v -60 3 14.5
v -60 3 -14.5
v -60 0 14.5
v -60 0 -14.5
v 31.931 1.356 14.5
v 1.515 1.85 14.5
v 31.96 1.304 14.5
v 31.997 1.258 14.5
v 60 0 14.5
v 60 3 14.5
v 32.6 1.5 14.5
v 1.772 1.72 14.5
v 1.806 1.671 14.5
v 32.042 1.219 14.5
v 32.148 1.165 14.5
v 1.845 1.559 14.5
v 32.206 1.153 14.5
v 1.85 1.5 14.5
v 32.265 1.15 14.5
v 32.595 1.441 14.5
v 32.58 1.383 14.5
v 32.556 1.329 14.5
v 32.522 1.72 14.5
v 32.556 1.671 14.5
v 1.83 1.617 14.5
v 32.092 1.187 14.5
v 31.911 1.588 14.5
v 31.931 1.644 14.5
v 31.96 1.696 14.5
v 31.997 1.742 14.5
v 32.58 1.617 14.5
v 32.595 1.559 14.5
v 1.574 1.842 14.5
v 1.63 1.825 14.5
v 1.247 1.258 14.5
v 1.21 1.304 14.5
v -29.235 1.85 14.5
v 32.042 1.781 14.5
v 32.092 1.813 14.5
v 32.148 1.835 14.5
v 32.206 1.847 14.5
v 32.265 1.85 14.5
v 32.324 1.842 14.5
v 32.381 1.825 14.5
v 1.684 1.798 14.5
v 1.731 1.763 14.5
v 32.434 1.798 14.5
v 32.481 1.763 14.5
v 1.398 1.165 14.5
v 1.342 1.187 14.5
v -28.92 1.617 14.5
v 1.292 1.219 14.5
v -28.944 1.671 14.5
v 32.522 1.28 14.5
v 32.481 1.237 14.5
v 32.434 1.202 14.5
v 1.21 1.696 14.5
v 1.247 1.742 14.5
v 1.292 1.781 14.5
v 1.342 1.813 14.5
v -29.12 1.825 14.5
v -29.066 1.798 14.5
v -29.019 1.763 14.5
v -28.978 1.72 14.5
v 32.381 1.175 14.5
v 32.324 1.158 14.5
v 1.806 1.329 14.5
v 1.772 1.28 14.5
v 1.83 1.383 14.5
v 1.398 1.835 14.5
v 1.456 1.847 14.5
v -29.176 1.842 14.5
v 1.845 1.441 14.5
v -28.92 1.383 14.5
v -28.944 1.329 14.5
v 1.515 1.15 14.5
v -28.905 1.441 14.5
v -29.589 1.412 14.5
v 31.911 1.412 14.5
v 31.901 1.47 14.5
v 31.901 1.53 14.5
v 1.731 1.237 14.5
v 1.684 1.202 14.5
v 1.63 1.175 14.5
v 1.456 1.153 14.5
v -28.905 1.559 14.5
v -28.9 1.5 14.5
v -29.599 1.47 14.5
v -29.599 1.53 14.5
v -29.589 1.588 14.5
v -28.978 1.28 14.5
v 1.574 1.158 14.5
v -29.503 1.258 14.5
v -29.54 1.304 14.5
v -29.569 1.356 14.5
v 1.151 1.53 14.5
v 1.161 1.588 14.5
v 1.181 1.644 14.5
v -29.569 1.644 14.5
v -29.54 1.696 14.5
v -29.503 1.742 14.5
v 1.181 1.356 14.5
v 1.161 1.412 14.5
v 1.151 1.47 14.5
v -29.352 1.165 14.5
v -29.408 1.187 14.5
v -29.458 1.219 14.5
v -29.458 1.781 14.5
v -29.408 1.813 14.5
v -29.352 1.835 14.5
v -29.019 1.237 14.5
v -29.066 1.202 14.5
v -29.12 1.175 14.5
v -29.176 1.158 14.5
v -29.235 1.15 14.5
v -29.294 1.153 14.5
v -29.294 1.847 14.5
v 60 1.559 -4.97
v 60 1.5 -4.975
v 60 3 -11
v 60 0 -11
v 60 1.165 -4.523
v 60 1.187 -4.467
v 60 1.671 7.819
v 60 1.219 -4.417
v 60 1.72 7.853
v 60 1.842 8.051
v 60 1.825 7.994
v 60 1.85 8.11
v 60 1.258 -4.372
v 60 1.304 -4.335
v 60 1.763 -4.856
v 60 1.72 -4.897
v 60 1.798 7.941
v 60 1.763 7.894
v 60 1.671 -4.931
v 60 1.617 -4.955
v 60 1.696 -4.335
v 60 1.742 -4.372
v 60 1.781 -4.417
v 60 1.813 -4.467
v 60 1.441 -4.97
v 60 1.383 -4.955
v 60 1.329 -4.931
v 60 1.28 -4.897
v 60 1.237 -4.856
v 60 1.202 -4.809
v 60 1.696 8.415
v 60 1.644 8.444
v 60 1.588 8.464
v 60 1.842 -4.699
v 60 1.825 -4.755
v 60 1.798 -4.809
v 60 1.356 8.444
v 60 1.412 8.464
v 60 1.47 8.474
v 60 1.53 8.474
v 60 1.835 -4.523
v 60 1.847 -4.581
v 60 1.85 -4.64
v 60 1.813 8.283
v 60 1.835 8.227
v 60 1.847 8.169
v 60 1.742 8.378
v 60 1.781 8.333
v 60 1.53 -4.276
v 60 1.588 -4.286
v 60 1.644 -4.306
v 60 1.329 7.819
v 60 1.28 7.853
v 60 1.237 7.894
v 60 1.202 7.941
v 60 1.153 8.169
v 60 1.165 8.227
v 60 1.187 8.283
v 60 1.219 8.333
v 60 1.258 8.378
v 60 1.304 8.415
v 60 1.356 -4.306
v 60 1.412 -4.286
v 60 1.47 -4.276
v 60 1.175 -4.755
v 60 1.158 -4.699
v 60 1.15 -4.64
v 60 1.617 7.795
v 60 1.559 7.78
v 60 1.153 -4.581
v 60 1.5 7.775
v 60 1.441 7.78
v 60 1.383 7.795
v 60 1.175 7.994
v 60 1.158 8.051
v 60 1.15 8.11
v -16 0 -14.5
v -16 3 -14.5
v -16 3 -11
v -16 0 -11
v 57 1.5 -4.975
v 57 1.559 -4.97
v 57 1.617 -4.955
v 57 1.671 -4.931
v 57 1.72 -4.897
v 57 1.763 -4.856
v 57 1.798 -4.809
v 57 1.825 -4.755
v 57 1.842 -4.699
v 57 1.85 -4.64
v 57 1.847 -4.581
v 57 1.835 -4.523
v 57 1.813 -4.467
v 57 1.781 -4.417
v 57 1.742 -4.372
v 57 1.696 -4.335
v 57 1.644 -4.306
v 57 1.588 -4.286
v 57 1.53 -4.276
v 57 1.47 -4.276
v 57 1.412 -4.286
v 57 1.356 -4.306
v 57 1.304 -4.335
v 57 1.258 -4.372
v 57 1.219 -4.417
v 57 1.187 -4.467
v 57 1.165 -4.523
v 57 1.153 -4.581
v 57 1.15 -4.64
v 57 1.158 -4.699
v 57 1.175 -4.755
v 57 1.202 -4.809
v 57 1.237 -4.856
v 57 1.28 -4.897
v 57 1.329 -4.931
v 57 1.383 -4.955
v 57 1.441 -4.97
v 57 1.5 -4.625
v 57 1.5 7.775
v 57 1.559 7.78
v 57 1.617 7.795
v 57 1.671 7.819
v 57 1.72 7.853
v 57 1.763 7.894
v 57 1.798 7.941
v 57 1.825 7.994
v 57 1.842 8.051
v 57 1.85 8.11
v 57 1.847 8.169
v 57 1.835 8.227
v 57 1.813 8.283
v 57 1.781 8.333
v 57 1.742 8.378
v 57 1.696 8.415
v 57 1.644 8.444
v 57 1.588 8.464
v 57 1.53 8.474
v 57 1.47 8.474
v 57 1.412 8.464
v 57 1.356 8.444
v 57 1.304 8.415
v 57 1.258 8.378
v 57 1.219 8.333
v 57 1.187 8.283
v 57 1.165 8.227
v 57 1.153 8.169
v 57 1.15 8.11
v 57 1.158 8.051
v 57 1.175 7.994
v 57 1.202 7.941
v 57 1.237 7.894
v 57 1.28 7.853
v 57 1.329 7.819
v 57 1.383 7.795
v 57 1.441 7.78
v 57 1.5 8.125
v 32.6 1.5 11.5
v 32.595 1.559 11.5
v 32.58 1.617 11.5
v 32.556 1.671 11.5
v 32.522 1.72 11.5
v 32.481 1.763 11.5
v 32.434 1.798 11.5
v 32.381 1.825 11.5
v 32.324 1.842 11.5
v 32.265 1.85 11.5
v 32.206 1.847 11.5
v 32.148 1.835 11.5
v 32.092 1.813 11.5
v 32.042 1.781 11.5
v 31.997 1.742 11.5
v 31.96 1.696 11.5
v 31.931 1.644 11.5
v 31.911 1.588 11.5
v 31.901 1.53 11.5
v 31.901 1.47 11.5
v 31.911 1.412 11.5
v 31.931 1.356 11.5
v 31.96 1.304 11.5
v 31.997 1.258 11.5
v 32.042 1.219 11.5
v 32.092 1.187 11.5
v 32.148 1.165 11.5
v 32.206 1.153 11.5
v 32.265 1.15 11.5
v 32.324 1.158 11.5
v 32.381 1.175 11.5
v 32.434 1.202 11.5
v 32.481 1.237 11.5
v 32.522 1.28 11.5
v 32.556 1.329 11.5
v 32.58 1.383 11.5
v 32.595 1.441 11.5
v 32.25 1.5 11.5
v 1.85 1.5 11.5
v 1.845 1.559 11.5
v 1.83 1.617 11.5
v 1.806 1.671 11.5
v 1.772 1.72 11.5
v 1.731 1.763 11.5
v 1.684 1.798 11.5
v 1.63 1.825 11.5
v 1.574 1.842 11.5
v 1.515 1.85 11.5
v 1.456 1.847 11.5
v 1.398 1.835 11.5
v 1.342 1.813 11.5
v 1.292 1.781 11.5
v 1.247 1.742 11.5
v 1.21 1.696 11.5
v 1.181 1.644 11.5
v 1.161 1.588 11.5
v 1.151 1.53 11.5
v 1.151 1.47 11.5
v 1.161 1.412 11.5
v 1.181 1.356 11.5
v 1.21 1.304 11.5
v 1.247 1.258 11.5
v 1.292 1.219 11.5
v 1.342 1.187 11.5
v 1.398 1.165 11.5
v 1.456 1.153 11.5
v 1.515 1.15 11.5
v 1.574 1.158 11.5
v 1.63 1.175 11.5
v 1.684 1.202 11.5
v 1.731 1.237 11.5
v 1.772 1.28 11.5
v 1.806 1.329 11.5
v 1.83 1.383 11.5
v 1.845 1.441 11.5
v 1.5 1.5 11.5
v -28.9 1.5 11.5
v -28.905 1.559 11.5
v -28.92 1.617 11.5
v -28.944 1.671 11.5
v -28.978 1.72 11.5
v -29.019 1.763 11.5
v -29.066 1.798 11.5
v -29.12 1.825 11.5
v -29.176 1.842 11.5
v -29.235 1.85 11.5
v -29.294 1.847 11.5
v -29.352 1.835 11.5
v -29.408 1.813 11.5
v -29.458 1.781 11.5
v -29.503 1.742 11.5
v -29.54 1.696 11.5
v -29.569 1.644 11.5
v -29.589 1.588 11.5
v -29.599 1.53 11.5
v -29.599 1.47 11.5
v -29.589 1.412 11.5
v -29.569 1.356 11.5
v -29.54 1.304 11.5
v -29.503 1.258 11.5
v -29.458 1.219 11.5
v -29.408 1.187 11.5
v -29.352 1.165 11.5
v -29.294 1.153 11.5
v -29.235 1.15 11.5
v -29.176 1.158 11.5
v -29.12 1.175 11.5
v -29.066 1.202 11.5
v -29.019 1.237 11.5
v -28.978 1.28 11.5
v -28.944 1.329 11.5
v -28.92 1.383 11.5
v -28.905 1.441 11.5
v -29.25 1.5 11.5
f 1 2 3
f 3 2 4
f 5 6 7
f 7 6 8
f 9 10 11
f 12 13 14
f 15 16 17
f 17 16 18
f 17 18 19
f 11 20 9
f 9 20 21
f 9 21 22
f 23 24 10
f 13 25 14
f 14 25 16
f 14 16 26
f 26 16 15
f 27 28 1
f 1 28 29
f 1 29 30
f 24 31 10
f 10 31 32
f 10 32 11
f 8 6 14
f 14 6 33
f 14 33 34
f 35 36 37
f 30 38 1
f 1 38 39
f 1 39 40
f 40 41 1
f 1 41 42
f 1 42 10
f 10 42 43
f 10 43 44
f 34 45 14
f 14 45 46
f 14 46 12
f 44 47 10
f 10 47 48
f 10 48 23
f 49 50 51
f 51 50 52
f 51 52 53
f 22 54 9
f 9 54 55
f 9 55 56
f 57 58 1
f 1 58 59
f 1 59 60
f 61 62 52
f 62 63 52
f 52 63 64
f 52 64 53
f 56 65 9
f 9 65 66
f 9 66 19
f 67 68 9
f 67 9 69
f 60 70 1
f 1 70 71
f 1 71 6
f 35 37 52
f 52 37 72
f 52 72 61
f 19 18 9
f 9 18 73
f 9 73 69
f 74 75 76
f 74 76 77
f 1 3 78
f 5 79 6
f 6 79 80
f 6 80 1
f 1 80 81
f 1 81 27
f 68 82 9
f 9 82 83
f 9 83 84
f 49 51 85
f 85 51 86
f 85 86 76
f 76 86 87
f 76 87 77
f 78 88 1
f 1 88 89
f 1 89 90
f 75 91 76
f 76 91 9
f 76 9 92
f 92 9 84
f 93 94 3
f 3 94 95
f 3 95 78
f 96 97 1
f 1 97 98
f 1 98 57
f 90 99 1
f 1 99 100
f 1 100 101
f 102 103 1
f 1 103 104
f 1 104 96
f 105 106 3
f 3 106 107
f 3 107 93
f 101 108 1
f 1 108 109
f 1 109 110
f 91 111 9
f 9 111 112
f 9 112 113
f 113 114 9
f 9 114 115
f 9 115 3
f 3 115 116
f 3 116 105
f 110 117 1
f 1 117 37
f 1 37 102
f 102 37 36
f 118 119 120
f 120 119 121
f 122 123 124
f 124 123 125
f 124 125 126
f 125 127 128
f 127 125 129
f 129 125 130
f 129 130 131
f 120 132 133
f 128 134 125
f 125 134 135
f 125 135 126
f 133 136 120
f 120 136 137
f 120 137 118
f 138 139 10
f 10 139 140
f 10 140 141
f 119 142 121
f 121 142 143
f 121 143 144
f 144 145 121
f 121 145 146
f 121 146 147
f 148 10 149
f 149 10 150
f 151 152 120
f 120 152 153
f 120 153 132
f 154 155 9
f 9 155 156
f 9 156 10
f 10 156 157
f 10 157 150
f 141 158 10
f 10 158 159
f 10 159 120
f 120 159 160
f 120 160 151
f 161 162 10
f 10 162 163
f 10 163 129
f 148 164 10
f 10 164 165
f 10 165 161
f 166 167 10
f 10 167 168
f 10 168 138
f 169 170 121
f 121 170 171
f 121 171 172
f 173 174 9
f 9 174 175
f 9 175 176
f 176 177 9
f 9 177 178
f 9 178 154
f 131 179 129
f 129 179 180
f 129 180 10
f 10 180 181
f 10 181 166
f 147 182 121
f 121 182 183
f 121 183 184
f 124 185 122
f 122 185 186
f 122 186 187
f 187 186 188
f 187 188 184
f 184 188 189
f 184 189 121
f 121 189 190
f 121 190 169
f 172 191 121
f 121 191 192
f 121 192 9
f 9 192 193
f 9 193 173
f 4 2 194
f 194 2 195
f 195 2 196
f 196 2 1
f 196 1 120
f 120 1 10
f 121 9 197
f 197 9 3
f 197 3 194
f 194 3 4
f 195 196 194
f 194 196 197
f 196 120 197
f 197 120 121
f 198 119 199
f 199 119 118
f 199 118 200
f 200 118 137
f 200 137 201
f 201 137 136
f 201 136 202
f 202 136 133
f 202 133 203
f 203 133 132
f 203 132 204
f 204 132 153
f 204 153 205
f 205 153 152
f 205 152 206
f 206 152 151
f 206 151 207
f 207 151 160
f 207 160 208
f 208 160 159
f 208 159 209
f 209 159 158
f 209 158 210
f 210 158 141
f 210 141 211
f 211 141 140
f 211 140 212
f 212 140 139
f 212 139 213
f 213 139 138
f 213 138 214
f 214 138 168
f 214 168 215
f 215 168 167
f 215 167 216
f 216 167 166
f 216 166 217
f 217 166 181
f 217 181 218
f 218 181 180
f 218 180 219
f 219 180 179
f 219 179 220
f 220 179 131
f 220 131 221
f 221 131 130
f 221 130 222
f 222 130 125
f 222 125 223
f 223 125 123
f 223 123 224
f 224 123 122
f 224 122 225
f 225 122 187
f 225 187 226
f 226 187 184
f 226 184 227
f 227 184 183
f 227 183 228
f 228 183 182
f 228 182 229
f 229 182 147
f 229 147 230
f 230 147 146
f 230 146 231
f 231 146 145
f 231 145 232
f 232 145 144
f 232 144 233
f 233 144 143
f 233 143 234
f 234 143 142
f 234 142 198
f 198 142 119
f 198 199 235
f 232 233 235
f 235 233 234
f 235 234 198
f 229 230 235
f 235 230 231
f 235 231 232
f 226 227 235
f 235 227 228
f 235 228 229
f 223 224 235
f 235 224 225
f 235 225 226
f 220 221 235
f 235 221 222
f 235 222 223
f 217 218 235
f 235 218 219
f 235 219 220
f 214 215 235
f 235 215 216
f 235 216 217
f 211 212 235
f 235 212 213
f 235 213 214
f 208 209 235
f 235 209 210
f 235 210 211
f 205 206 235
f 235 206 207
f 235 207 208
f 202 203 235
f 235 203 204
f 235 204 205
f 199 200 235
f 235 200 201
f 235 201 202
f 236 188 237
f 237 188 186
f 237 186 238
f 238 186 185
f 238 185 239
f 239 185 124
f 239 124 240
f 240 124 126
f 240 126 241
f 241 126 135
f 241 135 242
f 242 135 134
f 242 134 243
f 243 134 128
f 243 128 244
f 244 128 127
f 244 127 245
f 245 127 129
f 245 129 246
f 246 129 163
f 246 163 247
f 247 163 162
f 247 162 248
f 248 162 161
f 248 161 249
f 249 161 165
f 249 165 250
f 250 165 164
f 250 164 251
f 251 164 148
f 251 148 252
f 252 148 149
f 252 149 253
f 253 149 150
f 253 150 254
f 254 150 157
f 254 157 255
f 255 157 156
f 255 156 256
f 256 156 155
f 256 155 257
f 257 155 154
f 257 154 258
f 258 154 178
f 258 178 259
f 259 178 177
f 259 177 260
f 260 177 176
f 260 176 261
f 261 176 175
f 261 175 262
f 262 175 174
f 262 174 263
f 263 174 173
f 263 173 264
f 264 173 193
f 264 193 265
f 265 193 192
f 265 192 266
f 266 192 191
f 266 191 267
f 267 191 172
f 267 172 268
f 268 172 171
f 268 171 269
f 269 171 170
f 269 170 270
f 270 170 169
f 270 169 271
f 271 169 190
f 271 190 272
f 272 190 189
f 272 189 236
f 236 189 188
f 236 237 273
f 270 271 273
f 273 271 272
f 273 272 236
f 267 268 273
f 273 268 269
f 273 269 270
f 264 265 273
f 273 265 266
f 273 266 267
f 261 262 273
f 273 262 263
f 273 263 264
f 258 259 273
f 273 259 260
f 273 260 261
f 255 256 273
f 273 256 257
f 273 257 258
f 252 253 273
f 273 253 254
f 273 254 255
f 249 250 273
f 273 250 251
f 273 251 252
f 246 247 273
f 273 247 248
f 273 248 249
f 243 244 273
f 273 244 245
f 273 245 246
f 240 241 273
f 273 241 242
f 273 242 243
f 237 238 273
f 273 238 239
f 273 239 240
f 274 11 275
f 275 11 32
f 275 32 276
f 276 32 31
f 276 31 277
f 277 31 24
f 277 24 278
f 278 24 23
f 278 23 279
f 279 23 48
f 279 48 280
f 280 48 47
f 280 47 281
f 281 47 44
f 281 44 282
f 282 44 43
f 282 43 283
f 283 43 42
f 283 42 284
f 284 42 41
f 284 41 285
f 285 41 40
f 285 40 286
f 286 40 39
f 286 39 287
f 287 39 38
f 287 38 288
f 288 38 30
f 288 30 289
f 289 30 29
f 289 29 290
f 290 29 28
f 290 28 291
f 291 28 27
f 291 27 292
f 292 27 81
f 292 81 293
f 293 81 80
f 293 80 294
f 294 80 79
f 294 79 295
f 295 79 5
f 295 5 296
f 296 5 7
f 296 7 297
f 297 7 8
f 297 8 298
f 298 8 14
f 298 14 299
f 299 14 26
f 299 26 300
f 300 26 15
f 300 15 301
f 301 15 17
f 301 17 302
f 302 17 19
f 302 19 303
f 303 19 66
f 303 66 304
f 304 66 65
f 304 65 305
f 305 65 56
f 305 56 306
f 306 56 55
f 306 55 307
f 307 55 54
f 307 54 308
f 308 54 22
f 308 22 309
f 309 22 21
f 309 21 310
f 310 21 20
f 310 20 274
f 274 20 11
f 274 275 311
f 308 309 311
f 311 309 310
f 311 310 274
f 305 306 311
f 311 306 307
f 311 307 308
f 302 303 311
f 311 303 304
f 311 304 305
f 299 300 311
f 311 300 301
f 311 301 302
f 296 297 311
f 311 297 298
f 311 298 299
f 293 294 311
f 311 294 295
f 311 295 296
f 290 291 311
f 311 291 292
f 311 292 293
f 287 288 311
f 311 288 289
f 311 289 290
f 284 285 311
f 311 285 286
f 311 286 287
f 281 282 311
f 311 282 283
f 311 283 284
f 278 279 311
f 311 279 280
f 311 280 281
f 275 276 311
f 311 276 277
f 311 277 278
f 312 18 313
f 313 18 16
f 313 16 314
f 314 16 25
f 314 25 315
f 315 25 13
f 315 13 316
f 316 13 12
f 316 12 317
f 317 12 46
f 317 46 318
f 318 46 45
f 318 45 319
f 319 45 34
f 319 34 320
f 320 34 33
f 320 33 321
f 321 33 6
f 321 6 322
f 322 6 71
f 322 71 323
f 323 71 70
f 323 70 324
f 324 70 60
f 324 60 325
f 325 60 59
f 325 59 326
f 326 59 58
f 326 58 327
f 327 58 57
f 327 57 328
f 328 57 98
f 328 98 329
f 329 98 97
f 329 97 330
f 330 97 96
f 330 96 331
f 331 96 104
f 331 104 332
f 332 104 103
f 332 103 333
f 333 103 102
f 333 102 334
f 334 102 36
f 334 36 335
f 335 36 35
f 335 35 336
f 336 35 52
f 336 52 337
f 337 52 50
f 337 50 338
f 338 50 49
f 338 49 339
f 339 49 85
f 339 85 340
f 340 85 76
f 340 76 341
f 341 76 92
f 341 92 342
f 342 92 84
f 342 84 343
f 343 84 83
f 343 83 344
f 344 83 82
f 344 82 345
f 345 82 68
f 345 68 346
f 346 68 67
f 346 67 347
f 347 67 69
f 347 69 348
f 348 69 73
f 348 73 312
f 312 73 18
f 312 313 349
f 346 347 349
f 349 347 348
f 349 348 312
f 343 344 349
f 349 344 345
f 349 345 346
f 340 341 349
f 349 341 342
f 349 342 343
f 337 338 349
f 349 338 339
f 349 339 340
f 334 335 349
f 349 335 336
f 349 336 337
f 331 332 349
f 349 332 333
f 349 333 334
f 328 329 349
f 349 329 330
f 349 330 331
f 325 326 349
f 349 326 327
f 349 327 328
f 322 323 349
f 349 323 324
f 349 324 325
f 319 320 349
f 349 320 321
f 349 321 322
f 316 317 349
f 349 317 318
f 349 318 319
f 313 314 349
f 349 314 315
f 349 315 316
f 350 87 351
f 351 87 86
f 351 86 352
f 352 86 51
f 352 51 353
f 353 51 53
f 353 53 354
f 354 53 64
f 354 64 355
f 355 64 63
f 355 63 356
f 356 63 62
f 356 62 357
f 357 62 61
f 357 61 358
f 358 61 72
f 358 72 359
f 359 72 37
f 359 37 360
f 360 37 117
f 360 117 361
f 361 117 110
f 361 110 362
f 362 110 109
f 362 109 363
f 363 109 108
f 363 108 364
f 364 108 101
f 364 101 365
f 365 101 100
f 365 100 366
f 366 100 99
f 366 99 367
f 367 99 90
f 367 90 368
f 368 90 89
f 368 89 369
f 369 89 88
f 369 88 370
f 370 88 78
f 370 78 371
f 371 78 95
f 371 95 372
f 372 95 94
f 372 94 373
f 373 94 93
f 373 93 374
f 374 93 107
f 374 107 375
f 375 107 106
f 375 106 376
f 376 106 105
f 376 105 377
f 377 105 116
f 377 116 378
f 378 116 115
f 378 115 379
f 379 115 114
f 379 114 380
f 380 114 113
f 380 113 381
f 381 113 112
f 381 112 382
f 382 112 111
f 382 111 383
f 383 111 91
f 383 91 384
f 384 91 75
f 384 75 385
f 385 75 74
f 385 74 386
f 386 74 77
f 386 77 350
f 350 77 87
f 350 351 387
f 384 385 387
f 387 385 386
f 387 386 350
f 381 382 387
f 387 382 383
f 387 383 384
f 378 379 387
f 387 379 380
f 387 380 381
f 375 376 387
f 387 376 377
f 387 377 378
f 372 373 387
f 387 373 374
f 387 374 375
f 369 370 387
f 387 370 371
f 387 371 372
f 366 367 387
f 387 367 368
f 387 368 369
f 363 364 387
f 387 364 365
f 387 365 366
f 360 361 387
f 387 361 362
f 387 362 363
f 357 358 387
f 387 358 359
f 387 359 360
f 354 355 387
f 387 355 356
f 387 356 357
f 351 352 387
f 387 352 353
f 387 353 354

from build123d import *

# Parameters (mm, degrees)
SKETCH_1_W          = 120
SKETCH_1_H          = 29
EXTRUDE_1_DEPTH     = 3
SKETCH_2_W          = 76
SKETCH_2_H          = 3.5
CUT_EXTRUDE_1_DEPTH = 62.800080906
SKETCH_3_R          = 0.35
CUT_EXTRUDE_2_DEPTH = 3
SKETCH_5_R          = 0.35
CUT_EXTRUDE_3_DEPTH = 3


with BuildPart() as part:
    # 草图1 → 凸台-拉伸1 (new body)
    with BuildSketch(Plane(origin=(0, 0, 0), x_dir=(1, 0, 0), z_dir=(0, 1, 0))):
        Rectangle(SKETCH_1_W, SKETCH_1_H)
    extrude(amount=EXTRUDE_1_DEPTH)

    # 草图2 → 切除-拉伸1 (cut, through all)
    with BuildSketch(Plane.XZ):
        with Locations((22, -12.75)):
            Rectangle(SKETCH_2_W, SKETCH_2_H)
    extrude(amount=-CUT_EXTRUDE_1_DEPTH, mode=Mode.SUBTRACT)

    # 草图3 → 切除-拉伸2 (cut)
    with BuildSketch(Plane(origin=(60, 0, 0), x_dir=(0, 0, -1), z_dir=(1, 0, 0))):
        with Locations((-8.125, 1.5)):
            Circle(SKETCH_3_R)
        with Locations((4.625, 1.5)):
            Circle(SKETCH_3_R)
    extrude(amount=-CUT_EXTRUDE_2_DEPTH, mode=Mode.SUBTRACT)

    # 草图5 → 切除-拉伸3 (cut)
    with BuildSketch(Plane.XY.offset(14.5)):
        with Locations((-29.25, 1.5)):
            Circle(SKETCH_5_R)
        with Locations((1.5, 1.5)):
            Circle(SKETCH_5_R)
        with Locations((32.25, 1.5)):
            Circle(SKETCH_5_R)
    extrude(amount=-CUT_EXTRUDE_3_DEPTH, mode=Mode.SUBTRACT)


solid = part.part
